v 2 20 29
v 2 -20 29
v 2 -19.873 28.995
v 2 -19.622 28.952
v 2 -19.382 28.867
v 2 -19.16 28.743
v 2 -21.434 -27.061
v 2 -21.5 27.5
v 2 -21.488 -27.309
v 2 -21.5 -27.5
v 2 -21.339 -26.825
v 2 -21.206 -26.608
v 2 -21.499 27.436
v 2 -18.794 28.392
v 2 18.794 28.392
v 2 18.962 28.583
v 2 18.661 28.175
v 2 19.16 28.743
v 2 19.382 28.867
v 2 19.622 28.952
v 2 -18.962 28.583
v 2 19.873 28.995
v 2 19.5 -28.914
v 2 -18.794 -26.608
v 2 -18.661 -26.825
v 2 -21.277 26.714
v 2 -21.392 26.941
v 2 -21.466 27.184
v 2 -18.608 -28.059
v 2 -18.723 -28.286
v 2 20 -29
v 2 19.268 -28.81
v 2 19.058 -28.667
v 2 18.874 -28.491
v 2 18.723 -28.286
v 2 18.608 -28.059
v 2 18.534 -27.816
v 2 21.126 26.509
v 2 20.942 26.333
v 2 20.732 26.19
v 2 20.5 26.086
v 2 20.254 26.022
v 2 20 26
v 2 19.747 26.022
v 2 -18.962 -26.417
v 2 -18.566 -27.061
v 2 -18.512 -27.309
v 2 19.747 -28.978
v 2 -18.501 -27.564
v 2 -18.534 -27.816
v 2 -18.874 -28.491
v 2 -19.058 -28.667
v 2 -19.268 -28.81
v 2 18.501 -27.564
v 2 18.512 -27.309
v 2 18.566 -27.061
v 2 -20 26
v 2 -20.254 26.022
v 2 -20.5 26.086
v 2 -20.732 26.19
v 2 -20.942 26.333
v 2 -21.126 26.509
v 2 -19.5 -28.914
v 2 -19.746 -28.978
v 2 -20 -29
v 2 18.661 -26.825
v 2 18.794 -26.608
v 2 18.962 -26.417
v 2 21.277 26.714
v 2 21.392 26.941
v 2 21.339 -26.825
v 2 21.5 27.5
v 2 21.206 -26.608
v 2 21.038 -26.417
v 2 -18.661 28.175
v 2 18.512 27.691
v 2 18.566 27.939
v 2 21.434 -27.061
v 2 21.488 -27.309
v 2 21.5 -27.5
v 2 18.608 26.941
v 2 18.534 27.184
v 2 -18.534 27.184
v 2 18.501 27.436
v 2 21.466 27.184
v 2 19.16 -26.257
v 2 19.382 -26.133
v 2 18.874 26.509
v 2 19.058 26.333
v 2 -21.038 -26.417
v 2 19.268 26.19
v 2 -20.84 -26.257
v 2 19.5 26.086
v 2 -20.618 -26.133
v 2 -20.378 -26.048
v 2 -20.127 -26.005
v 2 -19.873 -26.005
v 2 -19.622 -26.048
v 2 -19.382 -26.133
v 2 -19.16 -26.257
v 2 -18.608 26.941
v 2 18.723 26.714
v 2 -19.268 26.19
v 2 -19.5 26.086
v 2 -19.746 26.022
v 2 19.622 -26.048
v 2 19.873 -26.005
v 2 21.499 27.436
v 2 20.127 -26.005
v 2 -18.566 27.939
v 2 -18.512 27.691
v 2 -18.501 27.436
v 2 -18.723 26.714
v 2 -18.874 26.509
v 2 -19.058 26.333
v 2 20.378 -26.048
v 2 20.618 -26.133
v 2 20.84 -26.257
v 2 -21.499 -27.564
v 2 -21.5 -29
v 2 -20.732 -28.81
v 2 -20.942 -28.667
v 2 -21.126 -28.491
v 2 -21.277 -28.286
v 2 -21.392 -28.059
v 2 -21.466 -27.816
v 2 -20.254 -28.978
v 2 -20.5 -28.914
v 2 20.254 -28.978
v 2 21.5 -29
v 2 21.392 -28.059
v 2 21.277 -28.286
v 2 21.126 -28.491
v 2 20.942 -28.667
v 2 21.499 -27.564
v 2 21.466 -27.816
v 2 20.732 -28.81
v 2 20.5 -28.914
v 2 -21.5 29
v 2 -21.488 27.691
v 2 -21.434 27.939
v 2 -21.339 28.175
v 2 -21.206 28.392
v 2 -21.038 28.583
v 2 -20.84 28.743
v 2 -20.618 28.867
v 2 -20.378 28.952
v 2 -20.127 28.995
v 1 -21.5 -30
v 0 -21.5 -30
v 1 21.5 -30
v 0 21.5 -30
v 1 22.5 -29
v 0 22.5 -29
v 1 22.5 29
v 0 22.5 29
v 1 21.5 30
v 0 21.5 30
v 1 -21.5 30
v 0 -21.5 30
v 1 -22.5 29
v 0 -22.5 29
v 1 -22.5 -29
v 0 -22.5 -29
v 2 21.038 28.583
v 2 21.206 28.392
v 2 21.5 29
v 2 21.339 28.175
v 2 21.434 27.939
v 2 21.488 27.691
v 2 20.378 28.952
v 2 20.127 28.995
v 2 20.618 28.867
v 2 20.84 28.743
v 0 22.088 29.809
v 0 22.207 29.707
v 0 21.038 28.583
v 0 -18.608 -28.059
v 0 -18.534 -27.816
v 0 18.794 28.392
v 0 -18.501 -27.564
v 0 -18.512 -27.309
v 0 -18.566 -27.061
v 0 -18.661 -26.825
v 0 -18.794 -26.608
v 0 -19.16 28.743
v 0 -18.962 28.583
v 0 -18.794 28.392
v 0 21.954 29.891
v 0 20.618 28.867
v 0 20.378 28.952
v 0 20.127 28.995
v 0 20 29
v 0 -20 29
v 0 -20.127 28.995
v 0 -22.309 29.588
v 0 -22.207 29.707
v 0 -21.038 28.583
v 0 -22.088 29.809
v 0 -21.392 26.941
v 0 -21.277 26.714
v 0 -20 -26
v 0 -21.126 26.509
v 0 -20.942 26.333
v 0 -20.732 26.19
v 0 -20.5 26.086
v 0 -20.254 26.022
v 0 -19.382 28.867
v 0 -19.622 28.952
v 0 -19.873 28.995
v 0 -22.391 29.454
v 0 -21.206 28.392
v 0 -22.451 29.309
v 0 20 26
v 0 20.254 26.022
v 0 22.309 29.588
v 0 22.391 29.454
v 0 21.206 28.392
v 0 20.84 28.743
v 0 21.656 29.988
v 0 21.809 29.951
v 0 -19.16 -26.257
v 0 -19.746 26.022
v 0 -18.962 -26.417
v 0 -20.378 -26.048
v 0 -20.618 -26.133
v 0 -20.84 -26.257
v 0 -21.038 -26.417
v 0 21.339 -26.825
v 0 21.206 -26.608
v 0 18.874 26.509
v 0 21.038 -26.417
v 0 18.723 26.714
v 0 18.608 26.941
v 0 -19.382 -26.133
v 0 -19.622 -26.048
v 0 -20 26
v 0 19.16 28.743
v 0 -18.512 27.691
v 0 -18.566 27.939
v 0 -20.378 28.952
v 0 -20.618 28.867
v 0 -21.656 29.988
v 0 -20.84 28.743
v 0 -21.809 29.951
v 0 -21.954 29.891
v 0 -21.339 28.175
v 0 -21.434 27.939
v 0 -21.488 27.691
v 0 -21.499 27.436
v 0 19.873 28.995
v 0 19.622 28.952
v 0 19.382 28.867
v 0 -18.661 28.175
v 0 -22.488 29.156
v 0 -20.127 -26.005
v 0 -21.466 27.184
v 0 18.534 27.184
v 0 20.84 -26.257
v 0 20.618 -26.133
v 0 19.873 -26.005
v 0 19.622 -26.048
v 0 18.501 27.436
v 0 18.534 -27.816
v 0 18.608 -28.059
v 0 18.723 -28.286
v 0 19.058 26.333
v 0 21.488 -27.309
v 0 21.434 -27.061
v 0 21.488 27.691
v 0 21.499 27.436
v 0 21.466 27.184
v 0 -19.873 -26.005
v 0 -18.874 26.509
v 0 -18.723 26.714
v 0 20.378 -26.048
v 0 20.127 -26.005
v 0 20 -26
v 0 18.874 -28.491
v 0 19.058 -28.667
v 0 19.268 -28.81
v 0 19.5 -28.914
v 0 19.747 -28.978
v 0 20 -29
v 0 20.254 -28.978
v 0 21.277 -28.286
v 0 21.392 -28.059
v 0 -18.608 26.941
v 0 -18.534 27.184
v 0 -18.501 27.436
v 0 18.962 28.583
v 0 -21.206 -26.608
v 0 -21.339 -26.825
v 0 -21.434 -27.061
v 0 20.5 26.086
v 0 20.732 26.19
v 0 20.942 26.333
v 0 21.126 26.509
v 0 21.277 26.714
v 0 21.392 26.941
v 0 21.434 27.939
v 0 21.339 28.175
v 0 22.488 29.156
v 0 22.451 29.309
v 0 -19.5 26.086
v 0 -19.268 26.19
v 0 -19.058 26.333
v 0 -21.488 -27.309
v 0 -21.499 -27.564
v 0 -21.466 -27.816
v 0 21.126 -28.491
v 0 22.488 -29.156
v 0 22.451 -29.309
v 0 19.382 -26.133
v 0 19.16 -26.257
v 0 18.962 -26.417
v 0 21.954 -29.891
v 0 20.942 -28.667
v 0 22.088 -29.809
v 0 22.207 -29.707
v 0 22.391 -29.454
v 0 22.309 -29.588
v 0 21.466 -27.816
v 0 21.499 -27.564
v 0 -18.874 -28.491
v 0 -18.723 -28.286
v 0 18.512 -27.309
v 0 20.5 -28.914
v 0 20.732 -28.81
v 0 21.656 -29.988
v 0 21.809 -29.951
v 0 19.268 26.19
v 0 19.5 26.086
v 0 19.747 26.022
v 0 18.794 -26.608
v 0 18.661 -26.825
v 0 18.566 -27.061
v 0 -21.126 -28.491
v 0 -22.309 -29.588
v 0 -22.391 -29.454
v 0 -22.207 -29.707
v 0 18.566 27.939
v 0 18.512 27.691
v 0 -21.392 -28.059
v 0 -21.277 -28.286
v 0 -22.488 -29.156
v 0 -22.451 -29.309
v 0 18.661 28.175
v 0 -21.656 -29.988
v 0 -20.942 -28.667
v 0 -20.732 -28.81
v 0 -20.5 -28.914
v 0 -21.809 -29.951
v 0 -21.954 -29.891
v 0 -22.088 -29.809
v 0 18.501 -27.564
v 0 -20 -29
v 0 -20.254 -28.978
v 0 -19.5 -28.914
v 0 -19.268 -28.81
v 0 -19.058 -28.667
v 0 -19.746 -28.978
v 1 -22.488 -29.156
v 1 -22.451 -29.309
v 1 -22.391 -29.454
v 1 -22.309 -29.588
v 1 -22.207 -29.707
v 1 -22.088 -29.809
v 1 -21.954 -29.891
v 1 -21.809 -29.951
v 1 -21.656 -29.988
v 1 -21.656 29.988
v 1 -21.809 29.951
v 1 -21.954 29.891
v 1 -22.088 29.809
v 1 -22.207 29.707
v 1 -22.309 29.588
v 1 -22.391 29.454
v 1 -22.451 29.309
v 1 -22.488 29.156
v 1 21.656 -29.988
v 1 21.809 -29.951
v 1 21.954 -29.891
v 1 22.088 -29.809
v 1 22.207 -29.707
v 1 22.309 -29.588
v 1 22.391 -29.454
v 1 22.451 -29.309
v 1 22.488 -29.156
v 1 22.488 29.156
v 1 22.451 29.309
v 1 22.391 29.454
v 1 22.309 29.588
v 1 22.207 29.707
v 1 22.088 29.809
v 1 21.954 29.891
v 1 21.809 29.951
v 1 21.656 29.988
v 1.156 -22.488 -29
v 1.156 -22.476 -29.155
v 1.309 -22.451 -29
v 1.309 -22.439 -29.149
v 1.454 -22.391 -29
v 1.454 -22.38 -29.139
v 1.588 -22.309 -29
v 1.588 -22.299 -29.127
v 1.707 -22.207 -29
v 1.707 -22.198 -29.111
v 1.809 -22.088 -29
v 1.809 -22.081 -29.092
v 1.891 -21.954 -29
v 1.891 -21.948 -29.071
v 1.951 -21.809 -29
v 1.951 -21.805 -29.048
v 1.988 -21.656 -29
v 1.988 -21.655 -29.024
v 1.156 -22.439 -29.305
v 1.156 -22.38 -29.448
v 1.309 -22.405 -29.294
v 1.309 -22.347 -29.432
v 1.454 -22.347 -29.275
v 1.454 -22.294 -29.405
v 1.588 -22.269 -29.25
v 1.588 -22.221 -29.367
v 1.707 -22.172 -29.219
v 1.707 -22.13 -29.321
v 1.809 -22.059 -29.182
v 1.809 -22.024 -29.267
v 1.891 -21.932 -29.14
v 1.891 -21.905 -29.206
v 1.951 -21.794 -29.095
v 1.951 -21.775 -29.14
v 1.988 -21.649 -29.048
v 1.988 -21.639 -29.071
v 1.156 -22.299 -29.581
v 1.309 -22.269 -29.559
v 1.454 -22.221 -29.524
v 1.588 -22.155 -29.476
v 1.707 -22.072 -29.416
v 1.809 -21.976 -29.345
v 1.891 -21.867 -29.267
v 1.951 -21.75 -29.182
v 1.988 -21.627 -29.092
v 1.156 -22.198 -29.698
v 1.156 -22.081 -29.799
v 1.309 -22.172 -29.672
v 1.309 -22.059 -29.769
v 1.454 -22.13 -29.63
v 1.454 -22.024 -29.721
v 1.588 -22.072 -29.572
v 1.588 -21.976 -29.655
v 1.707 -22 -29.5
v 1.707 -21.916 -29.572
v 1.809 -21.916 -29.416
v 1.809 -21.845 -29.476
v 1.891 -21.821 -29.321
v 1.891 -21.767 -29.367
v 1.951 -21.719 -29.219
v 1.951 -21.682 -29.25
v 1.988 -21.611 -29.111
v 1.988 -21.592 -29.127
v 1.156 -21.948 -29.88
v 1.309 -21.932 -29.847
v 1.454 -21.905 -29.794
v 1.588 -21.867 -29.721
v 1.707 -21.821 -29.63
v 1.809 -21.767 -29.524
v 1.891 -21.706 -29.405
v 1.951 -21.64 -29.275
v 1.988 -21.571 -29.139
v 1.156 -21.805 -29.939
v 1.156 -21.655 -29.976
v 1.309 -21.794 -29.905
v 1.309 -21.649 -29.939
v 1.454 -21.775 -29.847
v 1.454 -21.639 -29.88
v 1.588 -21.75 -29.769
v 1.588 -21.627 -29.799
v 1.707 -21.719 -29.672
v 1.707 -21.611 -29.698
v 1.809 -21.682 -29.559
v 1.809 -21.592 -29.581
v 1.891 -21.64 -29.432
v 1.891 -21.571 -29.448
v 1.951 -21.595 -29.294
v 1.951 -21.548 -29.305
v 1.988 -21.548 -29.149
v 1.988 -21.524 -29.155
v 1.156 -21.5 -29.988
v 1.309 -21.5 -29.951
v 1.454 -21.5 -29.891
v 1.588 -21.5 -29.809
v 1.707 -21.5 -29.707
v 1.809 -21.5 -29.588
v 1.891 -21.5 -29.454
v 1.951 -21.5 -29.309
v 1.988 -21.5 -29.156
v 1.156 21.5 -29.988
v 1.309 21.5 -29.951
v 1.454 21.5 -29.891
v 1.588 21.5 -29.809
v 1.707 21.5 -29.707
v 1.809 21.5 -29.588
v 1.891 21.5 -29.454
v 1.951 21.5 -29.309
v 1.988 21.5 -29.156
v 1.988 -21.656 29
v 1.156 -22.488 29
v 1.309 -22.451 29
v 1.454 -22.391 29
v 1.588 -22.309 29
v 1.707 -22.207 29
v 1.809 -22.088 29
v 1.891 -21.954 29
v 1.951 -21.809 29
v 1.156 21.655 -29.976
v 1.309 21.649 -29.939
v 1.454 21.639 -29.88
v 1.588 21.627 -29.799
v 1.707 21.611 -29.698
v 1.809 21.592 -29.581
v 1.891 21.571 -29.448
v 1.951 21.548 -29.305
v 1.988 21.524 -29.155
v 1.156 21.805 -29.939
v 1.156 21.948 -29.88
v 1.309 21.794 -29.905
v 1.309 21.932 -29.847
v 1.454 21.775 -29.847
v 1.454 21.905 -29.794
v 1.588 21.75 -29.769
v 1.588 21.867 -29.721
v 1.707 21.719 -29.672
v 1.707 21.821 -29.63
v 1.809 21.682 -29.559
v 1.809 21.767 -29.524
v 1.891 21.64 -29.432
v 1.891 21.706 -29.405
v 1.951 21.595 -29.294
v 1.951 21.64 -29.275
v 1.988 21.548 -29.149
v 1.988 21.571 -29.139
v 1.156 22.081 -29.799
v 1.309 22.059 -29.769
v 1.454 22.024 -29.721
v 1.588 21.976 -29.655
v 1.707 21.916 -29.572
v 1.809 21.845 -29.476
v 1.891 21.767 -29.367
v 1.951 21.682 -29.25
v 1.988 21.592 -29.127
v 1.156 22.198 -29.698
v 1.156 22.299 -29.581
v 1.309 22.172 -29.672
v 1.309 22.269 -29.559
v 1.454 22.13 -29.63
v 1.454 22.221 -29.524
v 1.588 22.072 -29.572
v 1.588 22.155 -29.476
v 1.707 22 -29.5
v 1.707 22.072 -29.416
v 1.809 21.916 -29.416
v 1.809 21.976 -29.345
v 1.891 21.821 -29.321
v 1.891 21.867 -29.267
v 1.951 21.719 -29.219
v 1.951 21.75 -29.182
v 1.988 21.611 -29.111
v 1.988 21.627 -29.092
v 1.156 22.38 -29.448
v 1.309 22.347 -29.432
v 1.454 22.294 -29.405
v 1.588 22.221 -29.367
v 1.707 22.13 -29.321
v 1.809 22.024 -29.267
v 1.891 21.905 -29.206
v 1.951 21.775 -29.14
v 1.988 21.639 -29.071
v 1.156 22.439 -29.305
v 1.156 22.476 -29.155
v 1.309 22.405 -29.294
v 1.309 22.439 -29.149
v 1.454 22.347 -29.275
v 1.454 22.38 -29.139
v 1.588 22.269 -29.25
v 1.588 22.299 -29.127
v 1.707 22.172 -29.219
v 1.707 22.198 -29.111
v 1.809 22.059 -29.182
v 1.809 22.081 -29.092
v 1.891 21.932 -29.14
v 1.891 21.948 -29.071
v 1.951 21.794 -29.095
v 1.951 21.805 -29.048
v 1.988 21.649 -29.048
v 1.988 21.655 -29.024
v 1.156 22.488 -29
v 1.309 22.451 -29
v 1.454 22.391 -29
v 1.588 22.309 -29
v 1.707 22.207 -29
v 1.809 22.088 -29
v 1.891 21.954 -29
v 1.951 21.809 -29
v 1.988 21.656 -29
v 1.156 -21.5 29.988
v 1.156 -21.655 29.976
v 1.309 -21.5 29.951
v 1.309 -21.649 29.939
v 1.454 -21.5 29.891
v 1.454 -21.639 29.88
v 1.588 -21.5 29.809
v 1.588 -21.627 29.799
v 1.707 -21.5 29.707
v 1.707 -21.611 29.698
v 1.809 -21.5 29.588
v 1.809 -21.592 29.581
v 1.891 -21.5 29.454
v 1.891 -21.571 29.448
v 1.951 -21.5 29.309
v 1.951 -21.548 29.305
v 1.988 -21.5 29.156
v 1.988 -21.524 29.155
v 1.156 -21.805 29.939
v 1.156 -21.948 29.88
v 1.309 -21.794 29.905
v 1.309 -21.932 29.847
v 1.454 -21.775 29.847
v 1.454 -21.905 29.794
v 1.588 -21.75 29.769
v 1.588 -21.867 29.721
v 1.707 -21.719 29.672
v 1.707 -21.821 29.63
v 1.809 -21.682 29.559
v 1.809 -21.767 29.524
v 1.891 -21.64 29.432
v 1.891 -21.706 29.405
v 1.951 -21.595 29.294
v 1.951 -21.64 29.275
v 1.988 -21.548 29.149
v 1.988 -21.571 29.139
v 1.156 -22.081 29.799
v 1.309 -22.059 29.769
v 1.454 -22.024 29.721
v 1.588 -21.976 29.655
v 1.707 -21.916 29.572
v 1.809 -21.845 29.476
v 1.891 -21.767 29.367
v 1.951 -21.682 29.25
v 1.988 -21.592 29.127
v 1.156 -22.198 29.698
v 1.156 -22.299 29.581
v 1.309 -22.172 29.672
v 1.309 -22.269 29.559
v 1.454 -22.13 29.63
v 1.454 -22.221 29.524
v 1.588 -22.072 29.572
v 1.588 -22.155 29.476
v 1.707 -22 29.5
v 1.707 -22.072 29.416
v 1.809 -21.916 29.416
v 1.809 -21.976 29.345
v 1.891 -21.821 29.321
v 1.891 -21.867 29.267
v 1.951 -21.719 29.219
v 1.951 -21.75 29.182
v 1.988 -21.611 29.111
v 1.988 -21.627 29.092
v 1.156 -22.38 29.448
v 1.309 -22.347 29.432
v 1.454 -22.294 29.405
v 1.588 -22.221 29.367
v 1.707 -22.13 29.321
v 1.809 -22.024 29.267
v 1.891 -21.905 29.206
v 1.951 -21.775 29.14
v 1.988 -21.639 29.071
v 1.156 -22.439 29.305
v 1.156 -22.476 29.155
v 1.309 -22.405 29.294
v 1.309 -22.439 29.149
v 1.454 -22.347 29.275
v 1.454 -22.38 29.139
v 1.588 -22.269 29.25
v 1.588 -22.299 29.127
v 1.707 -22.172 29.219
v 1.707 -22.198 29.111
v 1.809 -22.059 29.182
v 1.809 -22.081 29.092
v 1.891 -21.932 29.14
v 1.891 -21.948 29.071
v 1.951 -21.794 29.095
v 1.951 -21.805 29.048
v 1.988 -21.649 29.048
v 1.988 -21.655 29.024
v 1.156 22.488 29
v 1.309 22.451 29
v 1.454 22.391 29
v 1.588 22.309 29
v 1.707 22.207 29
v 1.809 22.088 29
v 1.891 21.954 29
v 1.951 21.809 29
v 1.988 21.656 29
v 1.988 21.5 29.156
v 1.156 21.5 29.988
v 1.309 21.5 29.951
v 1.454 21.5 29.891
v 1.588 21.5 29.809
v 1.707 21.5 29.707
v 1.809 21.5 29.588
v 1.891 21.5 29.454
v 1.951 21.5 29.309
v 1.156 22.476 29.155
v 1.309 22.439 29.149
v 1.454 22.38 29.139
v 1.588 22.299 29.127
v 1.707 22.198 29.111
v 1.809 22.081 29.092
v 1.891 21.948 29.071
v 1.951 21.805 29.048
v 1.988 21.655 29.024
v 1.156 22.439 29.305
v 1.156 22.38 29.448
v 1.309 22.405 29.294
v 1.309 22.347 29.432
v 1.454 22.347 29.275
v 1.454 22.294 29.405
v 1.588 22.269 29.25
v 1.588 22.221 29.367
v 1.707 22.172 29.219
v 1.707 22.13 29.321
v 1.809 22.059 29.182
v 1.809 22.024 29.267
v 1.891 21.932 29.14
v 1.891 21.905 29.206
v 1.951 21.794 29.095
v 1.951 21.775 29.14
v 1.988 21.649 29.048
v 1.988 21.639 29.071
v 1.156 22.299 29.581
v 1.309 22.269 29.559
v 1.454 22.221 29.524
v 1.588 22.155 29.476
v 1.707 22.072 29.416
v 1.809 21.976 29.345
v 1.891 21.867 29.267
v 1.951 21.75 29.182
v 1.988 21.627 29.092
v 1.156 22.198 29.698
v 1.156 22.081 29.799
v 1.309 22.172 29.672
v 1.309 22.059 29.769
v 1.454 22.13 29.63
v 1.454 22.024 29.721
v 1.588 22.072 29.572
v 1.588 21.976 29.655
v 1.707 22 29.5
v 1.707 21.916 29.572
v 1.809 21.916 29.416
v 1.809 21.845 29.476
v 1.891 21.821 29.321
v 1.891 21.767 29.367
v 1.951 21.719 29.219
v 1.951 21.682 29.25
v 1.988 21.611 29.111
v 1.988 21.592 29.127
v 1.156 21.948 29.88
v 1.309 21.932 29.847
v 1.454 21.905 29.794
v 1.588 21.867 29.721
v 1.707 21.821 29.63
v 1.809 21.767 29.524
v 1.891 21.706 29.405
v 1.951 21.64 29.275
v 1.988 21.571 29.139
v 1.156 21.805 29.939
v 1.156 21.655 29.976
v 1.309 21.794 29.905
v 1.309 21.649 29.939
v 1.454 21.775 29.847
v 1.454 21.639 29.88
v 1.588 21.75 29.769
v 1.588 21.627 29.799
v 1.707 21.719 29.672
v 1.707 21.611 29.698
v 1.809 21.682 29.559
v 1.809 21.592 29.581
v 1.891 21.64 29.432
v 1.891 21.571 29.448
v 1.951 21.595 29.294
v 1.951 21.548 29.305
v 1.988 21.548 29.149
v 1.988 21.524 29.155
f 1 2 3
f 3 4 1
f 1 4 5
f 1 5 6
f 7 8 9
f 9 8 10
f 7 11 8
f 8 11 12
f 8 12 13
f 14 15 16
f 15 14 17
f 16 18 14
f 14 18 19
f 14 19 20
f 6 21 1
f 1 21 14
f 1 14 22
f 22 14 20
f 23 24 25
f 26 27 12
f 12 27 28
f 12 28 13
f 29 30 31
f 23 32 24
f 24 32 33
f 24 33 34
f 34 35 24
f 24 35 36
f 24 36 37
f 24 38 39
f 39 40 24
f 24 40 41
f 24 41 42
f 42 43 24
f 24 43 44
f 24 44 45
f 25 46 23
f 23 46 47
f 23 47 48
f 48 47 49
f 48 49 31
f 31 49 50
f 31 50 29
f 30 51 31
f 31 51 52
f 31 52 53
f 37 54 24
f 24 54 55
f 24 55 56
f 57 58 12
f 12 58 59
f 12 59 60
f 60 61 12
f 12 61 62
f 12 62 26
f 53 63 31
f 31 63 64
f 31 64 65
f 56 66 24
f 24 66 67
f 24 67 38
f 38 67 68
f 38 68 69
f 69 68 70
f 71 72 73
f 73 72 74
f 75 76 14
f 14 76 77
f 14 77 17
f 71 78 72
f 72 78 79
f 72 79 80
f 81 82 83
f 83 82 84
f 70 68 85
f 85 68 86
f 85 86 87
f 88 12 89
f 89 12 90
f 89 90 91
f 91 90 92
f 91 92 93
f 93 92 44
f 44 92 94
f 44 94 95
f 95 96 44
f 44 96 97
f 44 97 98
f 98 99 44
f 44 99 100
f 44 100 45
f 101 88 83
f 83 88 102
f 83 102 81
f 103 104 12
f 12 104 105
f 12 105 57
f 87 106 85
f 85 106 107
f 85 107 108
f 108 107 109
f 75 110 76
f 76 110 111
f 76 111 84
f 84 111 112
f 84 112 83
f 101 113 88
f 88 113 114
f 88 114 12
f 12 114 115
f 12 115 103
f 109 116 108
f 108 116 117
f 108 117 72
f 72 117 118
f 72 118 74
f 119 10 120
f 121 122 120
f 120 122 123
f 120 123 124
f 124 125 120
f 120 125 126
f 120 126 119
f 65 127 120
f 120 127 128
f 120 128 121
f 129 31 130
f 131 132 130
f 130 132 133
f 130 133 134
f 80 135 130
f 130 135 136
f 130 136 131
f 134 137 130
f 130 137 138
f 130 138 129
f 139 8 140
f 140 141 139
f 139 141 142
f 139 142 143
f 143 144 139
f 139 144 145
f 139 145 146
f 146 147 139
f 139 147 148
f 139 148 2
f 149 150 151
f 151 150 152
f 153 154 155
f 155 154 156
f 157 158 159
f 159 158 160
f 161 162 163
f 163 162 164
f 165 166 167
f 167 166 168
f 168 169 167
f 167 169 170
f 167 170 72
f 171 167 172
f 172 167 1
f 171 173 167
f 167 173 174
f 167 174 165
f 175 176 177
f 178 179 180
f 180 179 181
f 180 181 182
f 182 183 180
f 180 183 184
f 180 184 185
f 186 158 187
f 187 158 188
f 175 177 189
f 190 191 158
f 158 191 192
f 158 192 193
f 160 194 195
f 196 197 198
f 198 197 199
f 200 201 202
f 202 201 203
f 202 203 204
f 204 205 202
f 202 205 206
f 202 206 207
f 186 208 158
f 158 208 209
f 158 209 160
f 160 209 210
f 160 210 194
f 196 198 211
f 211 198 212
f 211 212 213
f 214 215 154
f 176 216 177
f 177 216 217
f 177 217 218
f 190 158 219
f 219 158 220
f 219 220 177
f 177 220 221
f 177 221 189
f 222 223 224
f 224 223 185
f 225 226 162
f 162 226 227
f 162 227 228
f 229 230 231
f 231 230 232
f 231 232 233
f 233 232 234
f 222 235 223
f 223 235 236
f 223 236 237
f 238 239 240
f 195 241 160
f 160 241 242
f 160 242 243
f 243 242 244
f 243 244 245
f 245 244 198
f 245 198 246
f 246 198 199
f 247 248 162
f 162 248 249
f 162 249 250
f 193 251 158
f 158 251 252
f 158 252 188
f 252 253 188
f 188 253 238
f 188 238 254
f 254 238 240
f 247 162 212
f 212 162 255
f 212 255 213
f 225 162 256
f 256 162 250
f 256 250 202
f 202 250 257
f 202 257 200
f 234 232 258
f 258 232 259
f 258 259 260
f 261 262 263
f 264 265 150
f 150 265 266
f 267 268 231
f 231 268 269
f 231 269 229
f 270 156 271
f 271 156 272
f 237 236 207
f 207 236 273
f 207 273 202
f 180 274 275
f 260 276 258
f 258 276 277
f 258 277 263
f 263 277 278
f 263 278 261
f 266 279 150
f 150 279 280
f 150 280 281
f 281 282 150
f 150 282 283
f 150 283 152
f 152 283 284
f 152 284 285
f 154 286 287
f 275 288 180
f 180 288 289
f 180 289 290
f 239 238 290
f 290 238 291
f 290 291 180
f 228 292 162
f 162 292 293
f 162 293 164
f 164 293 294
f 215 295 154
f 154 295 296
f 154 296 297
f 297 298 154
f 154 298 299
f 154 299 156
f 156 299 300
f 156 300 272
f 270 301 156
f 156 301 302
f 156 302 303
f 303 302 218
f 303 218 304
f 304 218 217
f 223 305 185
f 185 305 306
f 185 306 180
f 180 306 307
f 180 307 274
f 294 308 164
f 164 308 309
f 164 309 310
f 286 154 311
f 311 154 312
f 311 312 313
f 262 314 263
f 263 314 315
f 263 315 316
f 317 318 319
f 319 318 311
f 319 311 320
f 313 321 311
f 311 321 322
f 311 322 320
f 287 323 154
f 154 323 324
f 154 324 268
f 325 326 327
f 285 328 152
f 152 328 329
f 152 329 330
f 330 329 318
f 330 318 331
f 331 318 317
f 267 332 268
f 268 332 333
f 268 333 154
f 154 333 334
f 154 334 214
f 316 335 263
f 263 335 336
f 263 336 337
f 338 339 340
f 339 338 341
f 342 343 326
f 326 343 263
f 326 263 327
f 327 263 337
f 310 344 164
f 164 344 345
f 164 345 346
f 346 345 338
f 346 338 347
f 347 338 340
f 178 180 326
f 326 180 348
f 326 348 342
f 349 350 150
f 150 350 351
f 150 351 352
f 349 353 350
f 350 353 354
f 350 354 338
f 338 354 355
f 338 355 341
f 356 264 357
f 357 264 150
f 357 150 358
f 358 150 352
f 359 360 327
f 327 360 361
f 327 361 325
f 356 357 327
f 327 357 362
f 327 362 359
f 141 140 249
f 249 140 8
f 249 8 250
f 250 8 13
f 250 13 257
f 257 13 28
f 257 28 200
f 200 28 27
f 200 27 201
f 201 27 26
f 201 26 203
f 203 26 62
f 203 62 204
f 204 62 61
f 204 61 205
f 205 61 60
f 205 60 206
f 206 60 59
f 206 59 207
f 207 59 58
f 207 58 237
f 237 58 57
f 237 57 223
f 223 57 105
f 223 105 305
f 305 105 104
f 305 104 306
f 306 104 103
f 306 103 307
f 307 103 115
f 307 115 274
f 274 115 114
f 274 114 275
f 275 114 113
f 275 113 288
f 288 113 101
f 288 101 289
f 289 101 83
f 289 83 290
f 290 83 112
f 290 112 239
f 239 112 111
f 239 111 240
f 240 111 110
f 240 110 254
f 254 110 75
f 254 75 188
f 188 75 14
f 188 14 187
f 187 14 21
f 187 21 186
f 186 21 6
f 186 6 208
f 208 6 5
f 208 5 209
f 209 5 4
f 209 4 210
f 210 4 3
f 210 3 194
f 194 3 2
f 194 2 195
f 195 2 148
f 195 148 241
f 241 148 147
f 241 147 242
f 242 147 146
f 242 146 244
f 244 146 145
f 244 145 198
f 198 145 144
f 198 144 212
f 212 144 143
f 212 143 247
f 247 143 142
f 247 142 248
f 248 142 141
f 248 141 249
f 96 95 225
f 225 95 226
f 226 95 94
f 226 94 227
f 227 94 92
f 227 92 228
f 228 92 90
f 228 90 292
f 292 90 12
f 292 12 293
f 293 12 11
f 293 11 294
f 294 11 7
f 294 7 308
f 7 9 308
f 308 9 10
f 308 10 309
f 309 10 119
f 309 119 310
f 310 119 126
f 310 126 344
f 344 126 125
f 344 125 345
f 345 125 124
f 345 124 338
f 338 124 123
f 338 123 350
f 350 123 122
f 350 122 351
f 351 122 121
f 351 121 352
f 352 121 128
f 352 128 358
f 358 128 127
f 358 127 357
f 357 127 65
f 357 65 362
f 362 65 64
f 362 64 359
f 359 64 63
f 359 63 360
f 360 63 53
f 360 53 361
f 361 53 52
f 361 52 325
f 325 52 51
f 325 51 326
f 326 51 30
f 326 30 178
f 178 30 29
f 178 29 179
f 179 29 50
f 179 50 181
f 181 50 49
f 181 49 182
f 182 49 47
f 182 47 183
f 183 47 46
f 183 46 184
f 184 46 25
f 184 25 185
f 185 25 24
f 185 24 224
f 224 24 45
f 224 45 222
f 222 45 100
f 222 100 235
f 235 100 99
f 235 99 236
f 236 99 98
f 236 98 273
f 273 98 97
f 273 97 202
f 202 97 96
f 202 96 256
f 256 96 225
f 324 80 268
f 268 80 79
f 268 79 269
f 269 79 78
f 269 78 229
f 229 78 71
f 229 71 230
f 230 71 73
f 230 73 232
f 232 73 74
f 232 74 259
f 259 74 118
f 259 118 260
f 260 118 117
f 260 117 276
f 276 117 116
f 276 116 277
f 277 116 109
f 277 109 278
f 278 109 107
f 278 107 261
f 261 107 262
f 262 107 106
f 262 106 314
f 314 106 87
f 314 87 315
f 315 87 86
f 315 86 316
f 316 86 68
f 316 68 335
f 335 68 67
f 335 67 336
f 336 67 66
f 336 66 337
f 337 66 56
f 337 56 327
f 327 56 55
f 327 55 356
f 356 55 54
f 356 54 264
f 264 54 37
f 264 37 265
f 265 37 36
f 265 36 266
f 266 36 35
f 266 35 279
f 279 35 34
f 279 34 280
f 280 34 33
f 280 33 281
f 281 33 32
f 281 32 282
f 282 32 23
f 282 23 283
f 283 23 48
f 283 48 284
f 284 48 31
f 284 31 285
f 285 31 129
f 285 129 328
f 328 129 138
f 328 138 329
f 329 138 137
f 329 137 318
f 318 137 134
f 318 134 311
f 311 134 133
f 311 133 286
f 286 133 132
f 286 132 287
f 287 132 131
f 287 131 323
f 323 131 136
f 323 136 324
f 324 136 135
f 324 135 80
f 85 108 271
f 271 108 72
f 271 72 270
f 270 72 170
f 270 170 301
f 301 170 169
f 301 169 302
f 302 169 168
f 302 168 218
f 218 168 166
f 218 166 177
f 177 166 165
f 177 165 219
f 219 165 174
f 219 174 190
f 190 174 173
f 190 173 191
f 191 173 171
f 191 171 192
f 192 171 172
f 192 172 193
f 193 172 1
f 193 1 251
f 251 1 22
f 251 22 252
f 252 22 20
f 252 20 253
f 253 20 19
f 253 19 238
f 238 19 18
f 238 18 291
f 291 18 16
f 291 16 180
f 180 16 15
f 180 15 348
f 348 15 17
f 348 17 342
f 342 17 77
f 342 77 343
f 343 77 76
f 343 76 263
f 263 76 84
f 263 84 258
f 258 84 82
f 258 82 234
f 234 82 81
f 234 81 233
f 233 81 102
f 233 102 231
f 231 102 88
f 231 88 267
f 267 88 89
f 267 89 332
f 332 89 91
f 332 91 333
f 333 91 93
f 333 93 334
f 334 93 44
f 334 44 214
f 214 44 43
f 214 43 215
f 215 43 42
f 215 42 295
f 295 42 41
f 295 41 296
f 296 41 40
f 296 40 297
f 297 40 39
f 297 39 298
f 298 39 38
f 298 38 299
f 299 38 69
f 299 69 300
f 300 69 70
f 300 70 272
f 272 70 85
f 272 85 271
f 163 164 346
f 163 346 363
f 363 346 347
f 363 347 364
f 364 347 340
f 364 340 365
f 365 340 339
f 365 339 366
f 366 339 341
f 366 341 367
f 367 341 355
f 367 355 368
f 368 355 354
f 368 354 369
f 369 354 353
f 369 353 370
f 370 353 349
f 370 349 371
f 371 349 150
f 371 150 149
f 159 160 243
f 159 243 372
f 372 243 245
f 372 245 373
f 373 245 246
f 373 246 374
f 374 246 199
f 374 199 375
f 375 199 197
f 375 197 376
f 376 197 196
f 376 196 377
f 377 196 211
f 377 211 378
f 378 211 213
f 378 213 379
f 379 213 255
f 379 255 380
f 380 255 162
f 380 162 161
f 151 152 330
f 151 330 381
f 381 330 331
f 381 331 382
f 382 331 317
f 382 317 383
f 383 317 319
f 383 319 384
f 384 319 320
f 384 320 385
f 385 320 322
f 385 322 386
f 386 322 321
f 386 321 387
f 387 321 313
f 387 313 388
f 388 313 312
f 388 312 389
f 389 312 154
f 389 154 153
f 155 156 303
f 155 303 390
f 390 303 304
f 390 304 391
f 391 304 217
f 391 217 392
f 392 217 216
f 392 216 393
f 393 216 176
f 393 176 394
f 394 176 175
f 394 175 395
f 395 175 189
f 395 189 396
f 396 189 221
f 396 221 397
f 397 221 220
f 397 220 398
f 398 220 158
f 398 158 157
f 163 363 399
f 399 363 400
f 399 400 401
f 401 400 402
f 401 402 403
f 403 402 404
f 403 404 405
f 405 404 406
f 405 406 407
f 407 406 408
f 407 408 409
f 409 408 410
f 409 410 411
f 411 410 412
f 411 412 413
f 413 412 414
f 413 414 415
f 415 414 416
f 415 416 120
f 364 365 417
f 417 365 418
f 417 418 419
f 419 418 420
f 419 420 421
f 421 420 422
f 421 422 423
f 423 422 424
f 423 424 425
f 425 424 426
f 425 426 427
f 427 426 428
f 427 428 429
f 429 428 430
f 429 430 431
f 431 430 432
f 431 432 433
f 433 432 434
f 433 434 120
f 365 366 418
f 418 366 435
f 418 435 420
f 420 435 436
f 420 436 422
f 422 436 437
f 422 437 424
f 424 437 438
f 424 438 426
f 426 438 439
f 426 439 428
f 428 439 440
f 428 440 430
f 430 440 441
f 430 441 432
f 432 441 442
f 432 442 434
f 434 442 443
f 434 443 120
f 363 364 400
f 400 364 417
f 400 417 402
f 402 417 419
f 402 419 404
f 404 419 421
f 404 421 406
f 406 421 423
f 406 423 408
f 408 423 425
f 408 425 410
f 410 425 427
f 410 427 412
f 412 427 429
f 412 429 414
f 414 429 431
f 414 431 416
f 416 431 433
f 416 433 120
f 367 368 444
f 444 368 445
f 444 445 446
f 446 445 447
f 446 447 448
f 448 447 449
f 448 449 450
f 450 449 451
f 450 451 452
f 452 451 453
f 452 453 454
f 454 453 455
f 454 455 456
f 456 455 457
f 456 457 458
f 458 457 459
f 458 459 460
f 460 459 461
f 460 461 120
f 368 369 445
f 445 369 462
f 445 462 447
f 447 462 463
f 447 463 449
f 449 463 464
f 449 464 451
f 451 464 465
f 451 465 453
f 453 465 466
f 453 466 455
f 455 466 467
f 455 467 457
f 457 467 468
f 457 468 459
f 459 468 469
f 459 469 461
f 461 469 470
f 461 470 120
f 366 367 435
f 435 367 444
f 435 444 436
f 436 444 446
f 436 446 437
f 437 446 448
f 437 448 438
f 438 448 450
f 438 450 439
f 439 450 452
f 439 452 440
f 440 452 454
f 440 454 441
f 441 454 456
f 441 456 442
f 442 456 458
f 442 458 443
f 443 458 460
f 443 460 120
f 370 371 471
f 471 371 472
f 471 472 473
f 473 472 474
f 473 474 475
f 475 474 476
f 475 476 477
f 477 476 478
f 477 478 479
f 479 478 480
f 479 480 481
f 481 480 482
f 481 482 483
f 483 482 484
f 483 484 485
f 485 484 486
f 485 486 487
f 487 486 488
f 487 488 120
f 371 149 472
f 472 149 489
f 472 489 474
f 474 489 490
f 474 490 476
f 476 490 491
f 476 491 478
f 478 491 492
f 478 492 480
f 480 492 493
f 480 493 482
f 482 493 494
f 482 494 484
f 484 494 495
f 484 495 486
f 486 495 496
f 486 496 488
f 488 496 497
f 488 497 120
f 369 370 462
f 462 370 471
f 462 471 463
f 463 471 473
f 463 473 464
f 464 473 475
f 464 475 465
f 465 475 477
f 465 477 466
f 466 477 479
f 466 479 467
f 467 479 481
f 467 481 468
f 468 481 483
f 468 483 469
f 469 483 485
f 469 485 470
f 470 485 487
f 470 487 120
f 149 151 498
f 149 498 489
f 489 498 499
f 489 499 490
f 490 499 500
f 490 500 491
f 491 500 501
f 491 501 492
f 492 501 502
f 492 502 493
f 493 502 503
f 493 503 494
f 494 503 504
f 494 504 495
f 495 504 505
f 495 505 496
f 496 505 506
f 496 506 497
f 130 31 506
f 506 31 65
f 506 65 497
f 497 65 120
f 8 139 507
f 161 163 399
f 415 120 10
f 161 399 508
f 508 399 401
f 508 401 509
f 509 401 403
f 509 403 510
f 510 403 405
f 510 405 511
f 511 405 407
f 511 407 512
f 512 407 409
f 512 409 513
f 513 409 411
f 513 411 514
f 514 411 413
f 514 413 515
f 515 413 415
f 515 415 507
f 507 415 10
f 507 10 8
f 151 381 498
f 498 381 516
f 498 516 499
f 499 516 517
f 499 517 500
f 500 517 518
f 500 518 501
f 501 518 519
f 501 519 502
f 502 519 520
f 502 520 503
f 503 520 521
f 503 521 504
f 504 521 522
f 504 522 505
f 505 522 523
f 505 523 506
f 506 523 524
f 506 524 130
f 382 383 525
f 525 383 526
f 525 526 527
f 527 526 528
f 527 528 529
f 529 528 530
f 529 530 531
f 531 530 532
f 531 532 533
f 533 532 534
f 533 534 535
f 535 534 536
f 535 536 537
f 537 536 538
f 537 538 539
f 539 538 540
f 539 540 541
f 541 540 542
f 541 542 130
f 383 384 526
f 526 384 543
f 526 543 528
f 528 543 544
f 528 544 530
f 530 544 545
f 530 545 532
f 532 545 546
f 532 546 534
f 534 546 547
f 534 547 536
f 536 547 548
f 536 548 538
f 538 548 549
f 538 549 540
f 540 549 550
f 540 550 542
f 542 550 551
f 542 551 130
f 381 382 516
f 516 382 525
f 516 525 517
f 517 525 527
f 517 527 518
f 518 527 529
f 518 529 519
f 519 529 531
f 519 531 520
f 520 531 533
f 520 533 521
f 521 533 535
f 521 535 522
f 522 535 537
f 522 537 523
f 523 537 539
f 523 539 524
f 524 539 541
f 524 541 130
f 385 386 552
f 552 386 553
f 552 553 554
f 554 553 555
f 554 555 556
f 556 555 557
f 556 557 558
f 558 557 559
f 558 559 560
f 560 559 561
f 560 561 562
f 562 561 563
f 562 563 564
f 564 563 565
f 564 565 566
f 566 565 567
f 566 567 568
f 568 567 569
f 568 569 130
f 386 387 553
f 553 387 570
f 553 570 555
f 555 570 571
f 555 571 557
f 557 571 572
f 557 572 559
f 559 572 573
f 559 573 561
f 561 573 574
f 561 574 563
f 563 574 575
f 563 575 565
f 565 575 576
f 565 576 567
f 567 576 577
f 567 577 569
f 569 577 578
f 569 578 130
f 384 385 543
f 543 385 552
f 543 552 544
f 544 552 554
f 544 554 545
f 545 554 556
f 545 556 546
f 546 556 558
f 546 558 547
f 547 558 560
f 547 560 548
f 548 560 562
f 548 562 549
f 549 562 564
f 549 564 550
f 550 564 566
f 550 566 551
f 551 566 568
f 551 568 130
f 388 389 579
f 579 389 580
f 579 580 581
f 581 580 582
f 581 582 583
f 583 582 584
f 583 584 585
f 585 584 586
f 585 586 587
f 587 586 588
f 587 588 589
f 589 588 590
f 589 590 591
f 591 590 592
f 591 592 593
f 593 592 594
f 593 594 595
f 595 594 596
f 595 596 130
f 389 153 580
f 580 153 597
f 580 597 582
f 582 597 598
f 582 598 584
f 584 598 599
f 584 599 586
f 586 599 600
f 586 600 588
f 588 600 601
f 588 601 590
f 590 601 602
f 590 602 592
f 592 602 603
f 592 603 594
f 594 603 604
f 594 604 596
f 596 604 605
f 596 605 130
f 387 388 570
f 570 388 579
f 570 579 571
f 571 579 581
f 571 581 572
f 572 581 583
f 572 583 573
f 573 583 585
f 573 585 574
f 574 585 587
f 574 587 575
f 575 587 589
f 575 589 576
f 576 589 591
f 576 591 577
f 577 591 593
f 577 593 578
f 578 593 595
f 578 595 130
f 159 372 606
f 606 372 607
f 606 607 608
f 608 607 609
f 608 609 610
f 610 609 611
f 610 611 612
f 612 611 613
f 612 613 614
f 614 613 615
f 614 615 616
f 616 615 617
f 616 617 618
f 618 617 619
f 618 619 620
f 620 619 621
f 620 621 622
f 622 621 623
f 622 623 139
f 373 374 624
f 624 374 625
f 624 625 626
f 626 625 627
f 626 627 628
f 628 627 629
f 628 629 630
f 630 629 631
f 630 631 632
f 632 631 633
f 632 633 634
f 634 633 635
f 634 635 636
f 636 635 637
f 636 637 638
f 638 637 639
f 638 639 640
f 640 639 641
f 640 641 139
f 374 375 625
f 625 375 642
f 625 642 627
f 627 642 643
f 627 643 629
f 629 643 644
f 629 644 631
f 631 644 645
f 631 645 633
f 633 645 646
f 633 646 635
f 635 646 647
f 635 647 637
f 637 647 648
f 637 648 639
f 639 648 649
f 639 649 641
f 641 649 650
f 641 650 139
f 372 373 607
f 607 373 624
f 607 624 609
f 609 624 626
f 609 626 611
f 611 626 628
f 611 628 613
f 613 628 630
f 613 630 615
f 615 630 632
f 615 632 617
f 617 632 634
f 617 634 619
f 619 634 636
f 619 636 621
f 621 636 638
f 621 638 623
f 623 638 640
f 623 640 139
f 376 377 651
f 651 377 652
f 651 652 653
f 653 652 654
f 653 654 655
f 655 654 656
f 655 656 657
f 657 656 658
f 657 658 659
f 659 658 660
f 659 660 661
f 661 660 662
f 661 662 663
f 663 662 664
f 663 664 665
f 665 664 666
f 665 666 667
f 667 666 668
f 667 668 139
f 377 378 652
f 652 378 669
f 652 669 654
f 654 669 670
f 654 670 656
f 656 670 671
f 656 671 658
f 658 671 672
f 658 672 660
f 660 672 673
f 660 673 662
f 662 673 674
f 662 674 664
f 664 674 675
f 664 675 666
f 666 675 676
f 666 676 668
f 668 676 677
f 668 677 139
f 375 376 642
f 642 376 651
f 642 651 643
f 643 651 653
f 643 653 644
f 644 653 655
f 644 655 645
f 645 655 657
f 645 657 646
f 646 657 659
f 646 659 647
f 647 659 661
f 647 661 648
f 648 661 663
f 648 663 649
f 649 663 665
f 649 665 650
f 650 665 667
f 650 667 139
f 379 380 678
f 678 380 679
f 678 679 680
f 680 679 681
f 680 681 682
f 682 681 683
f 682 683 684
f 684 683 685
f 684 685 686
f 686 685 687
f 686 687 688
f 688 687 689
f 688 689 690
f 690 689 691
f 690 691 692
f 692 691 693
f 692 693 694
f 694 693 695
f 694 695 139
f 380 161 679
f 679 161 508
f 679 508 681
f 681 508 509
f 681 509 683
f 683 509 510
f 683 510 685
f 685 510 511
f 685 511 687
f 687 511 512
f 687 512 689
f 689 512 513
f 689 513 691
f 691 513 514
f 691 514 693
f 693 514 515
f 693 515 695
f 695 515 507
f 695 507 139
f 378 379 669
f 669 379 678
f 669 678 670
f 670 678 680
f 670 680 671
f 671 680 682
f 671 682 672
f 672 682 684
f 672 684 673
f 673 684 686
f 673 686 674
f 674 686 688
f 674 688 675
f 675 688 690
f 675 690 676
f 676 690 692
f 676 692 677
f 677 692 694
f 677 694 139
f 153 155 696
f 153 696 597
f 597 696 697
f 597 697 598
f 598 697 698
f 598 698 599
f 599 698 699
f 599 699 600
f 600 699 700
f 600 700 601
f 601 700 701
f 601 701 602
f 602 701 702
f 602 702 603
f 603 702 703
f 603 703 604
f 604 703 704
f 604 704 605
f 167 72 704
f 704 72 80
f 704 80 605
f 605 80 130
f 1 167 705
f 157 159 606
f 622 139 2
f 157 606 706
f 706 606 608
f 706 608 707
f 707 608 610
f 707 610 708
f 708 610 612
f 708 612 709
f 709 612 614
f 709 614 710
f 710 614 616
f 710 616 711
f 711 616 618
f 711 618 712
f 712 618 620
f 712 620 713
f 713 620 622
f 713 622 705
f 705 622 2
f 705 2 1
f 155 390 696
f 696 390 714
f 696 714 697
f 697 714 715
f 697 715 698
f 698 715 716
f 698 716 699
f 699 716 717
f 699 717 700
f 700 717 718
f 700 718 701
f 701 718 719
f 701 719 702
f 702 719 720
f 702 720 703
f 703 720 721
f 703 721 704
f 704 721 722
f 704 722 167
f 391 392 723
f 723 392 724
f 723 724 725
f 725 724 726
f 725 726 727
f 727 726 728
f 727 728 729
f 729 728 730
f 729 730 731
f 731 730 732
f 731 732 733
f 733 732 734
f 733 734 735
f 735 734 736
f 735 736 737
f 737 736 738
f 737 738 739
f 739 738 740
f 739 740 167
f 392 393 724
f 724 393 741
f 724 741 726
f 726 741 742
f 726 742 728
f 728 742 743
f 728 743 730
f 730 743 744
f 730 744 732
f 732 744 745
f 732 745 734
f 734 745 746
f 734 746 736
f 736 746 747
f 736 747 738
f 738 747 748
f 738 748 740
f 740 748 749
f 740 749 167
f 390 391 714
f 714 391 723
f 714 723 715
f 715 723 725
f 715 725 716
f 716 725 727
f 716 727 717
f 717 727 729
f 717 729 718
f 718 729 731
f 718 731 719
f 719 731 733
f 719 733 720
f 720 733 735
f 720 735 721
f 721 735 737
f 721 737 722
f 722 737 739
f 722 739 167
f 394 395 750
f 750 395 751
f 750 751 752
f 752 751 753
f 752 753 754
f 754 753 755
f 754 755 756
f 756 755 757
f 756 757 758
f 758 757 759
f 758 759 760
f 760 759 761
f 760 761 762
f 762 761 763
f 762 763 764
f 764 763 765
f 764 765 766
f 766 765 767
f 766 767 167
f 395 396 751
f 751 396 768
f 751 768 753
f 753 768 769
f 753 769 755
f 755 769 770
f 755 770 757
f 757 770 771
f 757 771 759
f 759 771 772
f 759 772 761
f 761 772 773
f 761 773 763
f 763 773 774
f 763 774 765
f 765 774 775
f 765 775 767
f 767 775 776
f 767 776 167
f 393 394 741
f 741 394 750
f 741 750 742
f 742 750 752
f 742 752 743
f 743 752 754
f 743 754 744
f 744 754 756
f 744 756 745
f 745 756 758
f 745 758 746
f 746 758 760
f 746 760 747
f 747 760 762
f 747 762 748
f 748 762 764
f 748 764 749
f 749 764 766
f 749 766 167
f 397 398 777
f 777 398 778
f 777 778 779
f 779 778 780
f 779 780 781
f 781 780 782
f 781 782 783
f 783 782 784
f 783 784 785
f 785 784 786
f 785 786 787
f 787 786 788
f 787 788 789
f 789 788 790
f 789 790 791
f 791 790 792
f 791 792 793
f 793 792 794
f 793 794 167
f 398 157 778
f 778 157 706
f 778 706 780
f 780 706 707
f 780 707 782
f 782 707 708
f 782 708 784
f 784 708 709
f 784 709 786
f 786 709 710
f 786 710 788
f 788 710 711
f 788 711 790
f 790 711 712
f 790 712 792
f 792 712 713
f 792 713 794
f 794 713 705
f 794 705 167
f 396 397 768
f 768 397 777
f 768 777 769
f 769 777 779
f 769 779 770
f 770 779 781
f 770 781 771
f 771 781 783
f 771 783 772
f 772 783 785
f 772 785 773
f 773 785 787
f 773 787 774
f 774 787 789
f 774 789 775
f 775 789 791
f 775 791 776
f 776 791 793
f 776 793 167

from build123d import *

# Parameters (mm, degrees)
SKETCH1_W                 = 60
SKETCH1_H                 = 45
BOSS_EXTRUDE1_DEPTH       = 2
F_3_0MM_DOWEL_HOLE1_D     = 3
F_3_0MM_DOWEL_HOLE1_DEPTH = 20
F_3_0MM_DOWEL_HOLE1_TIP   = 0.901290929
FILLET2_R                 = 1
FILLET1_R                 = 1


with BuildPart() as part:
    # Sketch1 → Boss-Extrude1 (new body)
    with BuildSketch(Plane(origin=(0, 0, 0), x_dir=(0, 0, -1), z_dir=(1, 0, 0))):
        Rectangle(SKETCH1_W, SKETCH1_H)
    extrude(amount=BOSS_EXTRUDE1_DEPTH)

    # Ø3.0mm Dowel Hole1
    with Locations(Plane(origin=(2, 0, 0), x_dir=(0, 0, -1), z_dir=(1, 0, 0))):
        with Locations((-27.5, 20), (27.5, 20), (27.5, -20), (-27.5, -20)):
            Hole(F_3_0MM_DOWEL_HOLE1_D / 2, depth=F_3_0MM_DOWEL_HOLE1_DEPTH)
            with Locations((0, 0, -(F_3_0MM_DOWEL_HOLE1_DEPTH + F_3_0MM_DOWEL_HOLE1_TIP / 2))):  # 118° drill point
                Cone(0, F_3_0MM_DOWEL_HOLE1_D / 2, F_3_0MM_DOWEL_HOLE1_TIP, mode=Mode.SUBTRACT)

    # Fillet2
    fillet2_edges = [part.edges().sort_by_distance(p)[0] for p in [
        (1, -22.5, -30),
        (1, -22.5, 30),
        (1, 22.5, 30),
        (1, 22.5, -30),
    ]]
    fillet(fillet2_edges, radius=FILLET2_R)

    # Fillet1
    fillet1_edges = [part.edges().sort_by_distance(p)[0] for p in [
        (2, 0, -30),
        (2, -22.5, 0),
        (2, 22.5, 0),
        (2, 0, 30),
        (2, 22.207106781, 29.707106781),
        (2, 22.207106781, -29.707106781),
        (2, -22.207106781, 29.707106781),
        (2, -22.207106781, -29.707106781),
    ]]
    fillet(fillet1_edges, radius=FILLET1_R - 0.0001)  # a hair under: the kernel refuses the full size


solid = part.part
